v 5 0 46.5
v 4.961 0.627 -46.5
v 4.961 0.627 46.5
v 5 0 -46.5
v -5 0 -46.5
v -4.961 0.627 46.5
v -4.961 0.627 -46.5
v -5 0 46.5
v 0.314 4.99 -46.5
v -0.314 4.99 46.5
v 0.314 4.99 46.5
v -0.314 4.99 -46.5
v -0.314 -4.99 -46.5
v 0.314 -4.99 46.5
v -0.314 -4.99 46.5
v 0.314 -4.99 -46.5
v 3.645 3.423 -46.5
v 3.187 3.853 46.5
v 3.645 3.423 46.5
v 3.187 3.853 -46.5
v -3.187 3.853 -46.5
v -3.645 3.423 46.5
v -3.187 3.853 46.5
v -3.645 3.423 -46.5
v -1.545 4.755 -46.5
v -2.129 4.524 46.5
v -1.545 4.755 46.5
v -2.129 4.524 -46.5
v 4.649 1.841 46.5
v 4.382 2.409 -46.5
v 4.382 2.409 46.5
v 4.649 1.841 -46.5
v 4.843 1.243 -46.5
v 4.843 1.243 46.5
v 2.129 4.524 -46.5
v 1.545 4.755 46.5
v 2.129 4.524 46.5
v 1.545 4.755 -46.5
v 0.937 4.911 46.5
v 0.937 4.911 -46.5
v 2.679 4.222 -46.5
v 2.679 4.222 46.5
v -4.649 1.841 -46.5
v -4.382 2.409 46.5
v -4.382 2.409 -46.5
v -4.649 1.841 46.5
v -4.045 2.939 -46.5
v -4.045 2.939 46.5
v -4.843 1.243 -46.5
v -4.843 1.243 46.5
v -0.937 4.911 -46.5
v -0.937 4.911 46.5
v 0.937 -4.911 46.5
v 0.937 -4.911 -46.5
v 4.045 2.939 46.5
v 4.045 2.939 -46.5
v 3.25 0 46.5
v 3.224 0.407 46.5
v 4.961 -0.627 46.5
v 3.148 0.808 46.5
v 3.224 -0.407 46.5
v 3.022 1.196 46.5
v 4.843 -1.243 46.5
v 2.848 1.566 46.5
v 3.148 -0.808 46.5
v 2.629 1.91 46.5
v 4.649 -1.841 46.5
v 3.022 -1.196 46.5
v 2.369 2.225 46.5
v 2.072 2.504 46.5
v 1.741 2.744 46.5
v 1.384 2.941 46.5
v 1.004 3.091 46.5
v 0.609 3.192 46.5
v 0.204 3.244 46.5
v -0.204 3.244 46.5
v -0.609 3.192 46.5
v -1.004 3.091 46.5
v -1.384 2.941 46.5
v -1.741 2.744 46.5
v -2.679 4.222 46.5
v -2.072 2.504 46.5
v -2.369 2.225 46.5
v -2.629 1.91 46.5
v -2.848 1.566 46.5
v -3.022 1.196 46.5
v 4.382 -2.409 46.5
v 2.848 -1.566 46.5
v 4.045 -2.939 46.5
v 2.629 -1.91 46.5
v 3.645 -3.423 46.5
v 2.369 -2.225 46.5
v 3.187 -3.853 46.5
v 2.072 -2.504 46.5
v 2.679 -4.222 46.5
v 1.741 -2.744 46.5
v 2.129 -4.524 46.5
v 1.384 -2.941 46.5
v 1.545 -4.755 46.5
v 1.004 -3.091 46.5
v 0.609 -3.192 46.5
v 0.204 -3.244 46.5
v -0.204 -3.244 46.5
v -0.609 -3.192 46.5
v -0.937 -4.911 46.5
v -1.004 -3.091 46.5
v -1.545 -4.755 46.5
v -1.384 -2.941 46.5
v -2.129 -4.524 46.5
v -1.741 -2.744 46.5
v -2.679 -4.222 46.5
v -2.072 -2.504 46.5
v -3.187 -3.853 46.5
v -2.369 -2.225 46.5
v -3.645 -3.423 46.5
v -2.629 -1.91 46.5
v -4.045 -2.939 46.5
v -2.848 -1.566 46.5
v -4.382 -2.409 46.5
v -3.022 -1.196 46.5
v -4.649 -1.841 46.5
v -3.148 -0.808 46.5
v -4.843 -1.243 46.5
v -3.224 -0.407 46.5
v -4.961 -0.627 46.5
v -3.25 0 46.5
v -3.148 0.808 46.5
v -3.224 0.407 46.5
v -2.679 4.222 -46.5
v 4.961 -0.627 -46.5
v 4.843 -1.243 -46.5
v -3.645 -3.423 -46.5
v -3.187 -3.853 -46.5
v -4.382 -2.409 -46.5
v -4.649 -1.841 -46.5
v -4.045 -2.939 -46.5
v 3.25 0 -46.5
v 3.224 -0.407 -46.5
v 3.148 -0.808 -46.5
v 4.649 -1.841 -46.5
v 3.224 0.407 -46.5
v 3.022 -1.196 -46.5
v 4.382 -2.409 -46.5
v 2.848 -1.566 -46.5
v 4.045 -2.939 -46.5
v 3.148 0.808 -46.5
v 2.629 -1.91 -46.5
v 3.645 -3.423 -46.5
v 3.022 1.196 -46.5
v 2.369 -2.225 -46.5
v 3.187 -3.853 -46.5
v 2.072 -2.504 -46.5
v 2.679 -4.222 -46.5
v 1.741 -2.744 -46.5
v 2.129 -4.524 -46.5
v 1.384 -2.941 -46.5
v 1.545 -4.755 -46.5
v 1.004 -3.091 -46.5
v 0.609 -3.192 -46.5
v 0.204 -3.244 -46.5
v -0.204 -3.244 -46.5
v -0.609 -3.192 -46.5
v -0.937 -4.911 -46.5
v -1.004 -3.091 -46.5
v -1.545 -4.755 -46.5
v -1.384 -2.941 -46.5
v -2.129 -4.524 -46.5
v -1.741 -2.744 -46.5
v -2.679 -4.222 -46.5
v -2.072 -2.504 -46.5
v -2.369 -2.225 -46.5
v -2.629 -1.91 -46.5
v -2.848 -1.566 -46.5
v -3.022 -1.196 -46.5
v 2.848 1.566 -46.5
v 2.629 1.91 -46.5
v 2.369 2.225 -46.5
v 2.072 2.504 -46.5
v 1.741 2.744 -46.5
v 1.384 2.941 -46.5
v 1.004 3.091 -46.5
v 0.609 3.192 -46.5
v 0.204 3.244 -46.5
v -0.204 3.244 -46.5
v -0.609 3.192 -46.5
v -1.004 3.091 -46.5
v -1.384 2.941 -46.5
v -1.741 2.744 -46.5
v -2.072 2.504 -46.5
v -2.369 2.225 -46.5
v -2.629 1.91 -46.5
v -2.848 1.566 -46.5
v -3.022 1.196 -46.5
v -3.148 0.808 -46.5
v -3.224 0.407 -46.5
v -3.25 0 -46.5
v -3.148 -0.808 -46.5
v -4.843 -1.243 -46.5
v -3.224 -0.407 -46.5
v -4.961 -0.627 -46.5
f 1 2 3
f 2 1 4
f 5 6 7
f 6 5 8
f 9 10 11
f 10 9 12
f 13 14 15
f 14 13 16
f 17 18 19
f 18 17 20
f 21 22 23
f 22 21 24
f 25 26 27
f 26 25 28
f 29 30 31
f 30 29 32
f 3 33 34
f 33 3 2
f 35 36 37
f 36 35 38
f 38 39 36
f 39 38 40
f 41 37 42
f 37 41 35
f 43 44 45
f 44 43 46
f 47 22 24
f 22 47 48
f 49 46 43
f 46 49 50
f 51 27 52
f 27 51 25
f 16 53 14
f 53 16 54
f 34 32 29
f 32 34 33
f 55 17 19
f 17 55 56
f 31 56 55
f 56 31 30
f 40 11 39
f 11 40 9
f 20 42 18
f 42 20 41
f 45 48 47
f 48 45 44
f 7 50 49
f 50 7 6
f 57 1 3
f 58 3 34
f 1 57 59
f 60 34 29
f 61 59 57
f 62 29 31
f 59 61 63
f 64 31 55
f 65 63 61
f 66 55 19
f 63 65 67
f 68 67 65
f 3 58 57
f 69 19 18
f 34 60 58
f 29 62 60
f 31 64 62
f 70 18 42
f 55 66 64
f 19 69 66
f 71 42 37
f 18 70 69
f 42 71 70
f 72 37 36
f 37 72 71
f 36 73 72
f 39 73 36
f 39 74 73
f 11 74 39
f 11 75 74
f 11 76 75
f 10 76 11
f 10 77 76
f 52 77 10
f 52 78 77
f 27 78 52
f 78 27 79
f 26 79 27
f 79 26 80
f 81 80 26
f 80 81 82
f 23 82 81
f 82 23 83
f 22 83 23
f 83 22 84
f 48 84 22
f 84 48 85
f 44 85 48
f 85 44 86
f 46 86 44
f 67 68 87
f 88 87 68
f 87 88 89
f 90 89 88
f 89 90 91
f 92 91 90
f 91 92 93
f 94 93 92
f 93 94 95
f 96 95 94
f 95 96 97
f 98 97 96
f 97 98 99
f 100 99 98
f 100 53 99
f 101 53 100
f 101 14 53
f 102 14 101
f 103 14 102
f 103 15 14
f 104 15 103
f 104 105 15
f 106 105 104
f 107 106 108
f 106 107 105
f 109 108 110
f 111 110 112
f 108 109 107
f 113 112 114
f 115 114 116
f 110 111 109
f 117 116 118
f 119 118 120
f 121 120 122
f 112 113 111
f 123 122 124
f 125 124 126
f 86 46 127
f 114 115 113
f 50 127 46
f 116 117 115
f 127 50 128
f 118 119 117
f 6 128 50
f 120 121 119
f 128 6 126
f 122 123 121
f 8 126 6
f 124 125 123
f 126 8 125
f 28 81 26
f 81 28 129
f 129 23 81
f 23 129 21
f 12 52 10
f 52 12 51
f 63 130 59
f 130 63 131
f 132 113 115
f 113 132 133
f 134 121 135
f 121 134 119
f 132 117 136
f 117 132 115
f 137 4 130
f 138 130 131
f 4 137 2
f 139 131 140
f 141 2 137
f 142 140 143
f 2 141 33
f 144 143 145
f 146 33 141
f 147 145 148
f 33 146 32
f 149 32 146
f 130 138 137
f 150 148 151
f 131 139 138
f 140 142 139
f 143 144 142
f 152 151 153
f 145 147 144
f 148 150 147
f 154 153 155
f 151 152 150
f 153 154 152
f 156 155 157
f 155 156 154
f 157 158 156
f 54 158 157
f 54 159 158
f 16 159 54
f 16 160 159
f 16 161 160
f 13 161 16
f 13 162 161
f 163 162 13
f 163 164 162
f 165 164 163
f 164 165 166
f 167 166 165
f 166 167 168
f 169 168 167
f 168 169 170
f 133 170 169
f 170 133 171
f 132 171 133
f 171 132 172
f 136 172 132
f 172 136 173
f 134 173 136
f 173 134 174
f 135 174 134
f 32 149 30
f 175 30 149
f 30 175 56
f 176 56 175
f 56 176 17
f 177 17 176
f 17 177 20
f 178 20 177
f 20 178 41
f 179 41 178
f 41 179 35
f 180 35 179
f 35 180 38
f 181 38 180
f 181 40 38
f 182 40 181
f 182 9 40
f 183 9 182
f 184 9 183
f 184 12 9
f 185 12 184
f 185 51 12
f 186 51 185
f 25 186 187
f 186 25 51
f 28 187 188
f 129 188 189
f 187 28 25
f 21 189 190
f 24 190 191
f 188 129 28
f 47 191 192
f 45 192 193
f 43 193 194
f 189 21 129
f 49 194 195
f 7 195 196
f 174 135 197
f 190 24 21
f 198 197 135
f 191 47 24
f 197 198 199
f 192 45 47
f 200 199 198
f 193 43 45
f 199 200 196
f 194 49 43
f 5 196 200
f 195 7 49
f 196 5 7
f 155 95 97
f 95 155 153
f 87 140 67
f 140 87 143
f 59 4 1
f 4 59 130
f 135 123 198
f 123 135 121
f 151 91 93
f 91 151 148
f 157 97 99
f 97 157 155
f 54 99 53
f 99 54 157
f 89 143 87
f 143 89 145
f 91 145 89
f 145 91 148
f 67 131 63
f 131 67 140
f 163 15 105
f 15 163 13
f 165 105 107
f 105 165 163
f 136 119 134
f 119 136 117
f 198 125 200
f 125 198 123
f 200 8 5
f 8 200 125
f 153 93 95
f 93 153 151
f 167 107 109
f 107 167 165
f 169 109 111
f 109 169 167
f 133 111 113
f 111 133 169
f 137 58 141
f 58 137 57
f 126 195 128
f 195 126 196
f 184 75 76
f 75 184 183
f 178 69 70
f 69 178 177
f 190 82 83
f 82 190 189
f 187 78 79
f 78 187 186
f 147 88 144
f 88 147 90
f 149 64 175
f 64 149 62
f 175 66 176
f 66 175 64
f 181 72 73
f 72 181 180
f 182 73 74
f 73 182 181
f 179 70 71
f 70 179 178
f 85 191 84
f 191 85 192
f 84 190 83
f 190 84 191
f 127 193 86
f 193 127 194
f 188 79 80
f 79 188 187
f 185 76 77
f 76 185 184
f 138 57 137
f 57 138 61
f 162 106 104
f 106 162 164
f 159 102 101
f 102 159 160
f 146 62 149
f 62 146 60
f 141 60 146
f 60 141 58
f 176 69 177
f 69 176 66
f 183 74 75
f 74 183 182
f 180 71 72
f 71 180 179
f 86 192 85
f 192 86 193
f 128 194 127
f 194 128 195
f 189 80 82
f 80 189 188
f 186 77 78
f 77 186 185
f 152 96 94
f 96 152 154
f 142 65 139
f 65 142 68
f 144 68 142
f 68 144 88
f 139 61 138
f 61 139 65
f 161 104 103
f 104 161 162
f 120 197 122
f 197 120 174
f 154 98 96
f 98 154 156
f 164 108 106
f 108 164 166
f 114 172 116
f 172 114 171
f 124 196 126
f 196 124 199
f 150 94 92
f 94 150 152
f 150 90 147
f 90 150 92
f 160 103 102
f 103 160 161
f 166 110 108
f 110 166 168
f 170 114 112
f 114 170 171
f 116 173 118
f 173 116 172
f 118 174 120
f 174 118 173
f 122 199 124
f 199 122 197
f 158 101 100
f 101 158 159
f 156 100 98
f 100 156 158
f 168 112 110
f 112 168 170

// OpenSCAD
$fn = 50;


difference() {
	union() {
		translate(v = [0, 0, -46.5000000000]) {
			cylinder(h = 93, r = 5.0000000000);
		}
	}
	union() {
		translate(v = [0, 0, -100.0000000000]) {
			cylinder(h = 200, r = 3.2500000000);
		}
	}
}
